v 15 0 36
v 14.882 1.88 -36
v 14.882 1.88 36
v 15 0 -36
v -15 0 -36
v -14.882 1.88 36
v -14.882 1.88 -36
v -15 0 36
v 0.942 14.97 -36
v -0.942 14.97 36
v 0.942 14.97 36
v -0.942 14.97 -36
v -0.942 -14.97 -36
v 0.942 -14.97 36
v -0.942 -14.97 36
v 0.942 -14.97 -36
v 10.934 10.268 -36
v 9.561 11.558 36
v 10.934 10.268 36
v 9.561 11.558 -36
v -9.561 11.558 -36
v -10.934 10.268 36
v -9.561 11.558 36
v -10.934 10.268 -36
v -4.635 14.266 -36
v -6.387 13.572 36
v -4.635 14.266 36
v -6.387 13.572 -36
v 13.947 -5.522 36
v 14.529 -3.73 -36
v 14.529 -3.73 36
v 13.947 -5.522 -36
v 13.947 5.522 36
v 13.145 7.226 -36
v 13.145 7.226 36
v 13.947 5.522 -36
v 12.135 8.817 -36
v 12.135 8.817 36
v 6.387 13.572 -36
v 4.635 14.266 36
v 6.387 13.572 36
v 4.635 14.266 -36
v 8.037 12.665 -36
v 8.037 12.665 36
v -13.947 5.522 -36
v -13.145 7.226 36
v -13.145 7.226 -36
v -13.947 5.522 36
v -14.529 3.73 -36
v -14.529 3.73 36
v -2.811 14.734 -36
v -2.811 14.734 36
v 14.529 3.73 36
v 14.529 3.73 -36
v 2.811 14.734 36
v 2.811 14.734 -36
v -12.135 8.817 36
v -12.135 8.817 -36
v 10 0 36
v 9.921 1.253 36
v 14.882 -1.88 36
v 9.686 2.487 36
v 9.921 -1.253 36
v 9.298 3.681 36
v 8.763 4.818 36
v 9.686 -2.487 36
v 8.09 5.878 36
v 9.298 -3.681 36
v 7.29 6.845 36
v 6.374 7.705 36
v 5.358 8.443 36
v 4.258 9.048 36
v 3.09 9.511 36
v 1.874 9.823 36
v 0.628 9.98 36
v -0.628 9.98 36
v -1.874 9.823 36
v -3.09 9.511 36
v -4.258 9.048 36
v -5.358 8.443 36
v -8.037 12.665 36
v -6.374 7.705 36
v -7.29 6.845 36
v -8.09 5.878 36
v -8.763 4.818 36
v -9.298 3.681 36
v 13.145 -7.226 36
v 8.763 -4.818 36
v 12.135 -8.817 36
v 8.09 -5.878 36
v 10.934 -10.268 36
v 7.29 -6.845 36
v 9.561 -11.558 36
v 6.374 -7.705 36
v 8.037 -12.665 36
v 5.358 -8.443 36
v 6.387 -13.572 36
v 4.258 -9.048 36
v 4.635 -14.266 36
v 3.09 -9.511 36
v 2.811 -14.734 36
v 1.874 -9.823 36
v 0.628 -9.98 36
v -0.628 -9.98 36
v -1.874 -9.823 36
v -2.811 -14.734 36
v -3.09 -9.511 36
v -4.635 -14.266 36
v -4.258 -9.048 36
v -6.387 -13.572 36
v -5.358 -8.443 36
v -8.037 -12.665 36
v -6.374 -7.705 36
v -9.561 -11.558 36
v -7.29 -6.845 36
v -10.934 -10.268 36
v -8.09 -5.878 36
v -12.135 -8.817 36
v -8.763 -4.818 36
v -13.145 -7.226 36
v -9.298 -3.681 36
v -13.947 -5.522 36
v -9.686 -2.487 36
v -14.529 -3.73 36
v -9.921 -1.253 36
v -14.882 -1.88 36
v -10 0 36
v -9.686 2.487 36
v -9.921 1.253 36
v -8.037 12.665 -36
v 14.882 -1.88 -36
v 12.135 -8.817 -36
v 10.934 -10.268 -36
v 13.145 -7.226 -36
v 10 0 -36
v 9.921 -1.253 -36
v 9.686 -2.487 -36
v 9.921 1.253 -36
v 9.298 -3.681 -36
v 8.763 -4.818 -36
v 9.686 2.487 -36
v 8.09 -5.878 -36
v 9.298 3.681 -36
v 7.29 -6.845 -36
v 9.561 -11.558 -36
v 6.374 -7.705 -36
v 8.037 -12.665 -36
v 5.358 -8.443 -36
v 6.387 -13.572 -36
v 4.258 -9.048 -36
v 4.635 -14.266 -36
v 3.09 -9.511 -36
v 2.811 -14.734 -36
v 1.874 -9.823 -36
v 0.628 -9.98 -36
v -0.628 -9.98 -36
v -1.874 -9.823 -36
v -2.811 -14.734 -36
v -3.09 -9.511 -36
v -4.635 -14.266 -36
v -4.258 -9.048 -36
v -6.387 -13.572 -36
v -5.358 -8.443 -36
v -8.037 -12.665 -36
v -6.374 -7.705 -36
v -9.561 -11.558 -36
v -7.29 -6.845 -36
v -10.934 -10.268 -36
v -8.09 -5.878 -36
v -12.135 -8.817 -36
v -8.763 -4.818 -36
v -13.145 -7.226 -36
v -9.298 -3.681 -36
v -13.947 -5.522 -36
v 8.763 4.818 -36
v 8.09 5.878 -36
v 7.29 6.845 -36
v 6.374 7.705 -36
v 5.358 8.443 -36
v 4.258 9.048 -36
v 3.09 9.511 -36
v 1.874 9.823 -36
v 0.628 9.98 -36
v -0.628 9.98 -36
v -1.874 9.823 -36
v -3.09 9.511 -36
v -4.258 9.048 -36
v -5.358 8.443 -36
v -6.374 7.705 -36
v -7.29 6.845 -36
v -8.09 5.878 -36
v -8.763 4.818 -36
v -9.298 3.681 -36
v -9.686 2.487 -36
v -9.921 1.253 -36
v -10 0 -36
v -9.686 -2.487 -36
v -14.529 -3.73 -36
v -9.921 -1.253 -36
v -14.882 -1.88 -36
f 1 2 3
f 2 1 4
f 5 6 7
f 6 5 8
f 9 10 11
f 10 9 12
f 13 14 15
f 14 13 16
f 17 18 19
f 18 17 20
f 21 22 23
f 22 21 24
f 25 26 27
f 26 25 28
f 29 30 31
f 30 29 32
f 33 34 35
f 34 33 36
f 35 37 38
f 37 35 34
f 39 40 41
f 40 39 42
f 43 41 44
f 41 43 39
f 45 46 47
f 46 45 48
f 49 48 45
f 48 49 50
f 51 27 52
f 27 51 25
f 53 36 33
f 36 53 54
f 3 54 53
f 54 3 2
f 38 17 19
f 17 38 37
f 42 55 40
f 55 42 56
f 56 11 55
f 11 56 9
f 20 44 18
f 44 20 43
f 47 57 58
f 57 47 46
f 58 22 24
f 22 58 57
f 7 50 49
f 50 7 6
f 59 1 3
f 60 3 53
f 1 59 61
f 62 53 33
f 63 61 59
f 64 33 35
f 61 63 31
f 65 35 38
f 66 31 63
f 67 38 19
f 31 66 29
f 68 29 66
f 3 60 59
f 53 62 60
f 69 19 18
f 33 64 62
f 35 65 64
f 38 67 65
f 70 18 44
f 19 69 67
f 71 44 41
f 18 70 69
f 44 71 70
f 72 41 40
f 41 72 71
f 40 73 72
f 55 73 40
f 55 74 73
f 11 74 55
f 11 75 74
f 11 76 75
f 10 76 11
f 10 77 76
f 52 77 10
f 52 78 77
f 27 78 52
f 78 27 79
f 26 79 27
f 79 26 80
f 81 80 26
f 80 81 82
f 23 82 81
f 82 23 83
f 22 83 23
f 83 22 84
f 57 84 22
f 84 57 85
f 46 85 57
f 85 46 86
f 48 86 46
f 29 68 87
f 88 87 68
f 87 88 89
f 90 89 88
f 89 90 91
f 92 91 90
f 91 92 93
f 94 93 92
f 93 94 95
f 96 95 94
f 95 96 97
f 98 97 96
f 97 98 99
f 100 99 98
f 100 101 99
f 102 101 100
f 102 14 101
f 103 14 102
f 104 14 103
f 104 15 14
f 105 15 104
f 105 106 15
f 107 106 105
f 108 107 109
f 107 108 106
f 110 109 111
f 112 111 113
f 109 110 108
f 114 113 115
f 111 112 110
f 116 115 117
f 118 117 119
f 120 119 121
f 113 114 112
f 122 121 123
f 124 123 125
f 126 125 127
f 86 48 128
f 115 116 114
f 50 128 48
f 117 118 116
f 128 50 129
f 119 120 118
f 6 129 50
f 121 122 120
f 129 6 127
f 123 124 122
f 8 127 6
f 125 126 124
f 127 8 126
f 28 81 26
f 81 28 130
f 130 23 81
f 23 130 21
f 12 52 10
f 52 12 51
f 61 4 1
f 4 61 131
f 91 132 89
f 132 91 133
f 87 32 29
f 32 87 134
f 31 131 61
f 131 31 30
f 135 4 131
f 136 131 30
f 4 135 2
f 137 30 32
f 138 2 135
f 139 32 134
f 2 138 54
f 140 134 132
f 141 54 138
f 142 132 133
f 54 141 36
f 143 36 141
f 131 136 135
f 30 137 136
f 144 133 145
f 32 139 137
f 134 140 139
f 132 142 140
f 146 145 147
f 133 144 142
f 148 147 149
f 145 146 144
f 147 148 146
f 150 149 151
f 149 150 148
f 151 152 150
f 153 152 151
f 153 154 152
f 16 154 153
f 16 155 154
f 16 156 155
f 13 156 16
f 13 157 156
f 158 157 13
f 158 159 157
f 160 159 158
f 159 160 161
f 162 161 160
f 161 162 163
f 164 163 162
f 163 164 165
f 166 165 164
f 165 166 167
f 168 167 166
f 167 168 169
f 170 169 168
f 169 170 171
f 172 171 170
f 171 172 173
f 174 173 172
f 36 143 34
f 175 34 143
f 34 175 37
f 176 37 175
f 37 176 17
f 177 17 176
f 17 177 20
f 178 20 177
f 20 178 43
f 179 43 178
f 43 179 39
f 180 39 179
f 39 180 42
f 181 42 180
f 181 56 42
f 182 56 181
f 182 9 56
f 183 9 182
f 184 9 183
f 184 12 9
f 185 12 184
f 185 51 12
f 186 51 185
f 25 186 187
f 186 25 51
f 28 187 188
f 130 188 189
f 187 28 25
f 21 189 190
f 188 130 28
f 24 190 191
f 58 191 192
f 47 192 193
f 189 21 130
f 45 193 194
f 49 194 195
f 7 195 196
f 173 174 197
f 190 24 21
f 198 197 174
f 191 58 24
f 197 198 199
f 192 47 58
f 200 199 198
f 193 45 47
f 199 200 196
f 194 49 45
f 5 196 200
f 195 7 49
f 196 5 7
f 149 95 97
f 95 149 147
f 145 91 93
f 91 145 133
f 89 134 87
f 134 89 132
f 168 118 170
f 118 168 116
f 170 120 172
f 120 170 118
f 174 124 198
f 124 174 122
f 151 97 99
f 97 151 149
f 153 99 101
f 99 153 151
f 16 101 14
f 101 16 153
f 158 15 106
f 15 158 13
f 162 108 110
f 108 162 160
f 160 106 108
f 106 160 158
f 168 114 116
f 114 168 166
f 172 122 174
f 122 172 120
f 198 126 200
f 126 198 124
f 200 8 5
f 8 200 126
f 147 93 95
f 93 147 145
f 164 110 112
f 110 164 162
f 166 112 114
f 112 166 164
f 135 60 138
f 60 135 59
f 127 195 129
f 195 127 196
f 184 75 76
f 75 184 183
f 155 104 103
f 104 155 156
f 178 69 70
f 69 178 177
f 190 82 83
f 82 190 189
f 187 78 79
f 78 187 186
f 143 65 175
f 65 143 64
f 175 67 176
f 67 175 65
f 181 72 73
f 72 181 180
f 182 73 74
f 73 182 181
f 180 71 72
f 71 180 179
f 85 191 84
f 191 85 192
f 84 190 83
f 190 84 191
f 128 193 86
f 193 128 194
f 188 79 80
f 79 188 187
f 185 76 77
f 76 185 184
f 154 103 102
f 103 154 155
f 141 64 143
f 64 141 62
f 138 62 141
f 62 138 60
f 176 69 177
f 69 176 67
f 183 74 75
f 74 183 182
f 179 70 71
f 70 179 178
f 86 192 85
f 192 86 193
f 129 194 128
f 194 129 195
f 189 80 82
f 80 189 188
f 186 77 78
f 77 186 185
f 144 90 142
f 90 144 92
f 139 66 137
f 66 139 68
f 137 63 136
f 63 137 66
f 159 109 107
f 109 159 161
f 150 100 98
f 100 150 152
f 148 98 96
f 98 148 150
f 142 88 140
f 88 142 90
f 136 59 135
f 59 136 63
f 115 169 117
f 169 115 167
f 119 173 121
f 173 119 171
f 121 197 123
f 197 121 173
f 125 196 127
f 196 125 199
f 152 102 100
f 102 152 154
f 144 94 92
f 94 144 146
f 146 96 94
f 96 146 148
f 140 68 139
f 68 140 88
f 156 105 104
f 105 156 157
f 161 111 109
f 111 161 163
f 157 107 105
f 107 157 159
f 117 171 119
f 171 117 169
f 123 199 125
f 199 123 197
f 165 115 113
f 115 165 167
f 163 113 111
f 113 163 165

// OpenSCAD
$fn = 50;


difference() {
	union() {
		translate(v = [0, 0, -36.0000000000]) {
			cylinder(h = 72, r = 15.0000000000);
		}
	}
	union() {
		translate(v = [0, 0, -100.0000000000]) {
			cylinder(h = 200, r = 10);
		}
	}
}
